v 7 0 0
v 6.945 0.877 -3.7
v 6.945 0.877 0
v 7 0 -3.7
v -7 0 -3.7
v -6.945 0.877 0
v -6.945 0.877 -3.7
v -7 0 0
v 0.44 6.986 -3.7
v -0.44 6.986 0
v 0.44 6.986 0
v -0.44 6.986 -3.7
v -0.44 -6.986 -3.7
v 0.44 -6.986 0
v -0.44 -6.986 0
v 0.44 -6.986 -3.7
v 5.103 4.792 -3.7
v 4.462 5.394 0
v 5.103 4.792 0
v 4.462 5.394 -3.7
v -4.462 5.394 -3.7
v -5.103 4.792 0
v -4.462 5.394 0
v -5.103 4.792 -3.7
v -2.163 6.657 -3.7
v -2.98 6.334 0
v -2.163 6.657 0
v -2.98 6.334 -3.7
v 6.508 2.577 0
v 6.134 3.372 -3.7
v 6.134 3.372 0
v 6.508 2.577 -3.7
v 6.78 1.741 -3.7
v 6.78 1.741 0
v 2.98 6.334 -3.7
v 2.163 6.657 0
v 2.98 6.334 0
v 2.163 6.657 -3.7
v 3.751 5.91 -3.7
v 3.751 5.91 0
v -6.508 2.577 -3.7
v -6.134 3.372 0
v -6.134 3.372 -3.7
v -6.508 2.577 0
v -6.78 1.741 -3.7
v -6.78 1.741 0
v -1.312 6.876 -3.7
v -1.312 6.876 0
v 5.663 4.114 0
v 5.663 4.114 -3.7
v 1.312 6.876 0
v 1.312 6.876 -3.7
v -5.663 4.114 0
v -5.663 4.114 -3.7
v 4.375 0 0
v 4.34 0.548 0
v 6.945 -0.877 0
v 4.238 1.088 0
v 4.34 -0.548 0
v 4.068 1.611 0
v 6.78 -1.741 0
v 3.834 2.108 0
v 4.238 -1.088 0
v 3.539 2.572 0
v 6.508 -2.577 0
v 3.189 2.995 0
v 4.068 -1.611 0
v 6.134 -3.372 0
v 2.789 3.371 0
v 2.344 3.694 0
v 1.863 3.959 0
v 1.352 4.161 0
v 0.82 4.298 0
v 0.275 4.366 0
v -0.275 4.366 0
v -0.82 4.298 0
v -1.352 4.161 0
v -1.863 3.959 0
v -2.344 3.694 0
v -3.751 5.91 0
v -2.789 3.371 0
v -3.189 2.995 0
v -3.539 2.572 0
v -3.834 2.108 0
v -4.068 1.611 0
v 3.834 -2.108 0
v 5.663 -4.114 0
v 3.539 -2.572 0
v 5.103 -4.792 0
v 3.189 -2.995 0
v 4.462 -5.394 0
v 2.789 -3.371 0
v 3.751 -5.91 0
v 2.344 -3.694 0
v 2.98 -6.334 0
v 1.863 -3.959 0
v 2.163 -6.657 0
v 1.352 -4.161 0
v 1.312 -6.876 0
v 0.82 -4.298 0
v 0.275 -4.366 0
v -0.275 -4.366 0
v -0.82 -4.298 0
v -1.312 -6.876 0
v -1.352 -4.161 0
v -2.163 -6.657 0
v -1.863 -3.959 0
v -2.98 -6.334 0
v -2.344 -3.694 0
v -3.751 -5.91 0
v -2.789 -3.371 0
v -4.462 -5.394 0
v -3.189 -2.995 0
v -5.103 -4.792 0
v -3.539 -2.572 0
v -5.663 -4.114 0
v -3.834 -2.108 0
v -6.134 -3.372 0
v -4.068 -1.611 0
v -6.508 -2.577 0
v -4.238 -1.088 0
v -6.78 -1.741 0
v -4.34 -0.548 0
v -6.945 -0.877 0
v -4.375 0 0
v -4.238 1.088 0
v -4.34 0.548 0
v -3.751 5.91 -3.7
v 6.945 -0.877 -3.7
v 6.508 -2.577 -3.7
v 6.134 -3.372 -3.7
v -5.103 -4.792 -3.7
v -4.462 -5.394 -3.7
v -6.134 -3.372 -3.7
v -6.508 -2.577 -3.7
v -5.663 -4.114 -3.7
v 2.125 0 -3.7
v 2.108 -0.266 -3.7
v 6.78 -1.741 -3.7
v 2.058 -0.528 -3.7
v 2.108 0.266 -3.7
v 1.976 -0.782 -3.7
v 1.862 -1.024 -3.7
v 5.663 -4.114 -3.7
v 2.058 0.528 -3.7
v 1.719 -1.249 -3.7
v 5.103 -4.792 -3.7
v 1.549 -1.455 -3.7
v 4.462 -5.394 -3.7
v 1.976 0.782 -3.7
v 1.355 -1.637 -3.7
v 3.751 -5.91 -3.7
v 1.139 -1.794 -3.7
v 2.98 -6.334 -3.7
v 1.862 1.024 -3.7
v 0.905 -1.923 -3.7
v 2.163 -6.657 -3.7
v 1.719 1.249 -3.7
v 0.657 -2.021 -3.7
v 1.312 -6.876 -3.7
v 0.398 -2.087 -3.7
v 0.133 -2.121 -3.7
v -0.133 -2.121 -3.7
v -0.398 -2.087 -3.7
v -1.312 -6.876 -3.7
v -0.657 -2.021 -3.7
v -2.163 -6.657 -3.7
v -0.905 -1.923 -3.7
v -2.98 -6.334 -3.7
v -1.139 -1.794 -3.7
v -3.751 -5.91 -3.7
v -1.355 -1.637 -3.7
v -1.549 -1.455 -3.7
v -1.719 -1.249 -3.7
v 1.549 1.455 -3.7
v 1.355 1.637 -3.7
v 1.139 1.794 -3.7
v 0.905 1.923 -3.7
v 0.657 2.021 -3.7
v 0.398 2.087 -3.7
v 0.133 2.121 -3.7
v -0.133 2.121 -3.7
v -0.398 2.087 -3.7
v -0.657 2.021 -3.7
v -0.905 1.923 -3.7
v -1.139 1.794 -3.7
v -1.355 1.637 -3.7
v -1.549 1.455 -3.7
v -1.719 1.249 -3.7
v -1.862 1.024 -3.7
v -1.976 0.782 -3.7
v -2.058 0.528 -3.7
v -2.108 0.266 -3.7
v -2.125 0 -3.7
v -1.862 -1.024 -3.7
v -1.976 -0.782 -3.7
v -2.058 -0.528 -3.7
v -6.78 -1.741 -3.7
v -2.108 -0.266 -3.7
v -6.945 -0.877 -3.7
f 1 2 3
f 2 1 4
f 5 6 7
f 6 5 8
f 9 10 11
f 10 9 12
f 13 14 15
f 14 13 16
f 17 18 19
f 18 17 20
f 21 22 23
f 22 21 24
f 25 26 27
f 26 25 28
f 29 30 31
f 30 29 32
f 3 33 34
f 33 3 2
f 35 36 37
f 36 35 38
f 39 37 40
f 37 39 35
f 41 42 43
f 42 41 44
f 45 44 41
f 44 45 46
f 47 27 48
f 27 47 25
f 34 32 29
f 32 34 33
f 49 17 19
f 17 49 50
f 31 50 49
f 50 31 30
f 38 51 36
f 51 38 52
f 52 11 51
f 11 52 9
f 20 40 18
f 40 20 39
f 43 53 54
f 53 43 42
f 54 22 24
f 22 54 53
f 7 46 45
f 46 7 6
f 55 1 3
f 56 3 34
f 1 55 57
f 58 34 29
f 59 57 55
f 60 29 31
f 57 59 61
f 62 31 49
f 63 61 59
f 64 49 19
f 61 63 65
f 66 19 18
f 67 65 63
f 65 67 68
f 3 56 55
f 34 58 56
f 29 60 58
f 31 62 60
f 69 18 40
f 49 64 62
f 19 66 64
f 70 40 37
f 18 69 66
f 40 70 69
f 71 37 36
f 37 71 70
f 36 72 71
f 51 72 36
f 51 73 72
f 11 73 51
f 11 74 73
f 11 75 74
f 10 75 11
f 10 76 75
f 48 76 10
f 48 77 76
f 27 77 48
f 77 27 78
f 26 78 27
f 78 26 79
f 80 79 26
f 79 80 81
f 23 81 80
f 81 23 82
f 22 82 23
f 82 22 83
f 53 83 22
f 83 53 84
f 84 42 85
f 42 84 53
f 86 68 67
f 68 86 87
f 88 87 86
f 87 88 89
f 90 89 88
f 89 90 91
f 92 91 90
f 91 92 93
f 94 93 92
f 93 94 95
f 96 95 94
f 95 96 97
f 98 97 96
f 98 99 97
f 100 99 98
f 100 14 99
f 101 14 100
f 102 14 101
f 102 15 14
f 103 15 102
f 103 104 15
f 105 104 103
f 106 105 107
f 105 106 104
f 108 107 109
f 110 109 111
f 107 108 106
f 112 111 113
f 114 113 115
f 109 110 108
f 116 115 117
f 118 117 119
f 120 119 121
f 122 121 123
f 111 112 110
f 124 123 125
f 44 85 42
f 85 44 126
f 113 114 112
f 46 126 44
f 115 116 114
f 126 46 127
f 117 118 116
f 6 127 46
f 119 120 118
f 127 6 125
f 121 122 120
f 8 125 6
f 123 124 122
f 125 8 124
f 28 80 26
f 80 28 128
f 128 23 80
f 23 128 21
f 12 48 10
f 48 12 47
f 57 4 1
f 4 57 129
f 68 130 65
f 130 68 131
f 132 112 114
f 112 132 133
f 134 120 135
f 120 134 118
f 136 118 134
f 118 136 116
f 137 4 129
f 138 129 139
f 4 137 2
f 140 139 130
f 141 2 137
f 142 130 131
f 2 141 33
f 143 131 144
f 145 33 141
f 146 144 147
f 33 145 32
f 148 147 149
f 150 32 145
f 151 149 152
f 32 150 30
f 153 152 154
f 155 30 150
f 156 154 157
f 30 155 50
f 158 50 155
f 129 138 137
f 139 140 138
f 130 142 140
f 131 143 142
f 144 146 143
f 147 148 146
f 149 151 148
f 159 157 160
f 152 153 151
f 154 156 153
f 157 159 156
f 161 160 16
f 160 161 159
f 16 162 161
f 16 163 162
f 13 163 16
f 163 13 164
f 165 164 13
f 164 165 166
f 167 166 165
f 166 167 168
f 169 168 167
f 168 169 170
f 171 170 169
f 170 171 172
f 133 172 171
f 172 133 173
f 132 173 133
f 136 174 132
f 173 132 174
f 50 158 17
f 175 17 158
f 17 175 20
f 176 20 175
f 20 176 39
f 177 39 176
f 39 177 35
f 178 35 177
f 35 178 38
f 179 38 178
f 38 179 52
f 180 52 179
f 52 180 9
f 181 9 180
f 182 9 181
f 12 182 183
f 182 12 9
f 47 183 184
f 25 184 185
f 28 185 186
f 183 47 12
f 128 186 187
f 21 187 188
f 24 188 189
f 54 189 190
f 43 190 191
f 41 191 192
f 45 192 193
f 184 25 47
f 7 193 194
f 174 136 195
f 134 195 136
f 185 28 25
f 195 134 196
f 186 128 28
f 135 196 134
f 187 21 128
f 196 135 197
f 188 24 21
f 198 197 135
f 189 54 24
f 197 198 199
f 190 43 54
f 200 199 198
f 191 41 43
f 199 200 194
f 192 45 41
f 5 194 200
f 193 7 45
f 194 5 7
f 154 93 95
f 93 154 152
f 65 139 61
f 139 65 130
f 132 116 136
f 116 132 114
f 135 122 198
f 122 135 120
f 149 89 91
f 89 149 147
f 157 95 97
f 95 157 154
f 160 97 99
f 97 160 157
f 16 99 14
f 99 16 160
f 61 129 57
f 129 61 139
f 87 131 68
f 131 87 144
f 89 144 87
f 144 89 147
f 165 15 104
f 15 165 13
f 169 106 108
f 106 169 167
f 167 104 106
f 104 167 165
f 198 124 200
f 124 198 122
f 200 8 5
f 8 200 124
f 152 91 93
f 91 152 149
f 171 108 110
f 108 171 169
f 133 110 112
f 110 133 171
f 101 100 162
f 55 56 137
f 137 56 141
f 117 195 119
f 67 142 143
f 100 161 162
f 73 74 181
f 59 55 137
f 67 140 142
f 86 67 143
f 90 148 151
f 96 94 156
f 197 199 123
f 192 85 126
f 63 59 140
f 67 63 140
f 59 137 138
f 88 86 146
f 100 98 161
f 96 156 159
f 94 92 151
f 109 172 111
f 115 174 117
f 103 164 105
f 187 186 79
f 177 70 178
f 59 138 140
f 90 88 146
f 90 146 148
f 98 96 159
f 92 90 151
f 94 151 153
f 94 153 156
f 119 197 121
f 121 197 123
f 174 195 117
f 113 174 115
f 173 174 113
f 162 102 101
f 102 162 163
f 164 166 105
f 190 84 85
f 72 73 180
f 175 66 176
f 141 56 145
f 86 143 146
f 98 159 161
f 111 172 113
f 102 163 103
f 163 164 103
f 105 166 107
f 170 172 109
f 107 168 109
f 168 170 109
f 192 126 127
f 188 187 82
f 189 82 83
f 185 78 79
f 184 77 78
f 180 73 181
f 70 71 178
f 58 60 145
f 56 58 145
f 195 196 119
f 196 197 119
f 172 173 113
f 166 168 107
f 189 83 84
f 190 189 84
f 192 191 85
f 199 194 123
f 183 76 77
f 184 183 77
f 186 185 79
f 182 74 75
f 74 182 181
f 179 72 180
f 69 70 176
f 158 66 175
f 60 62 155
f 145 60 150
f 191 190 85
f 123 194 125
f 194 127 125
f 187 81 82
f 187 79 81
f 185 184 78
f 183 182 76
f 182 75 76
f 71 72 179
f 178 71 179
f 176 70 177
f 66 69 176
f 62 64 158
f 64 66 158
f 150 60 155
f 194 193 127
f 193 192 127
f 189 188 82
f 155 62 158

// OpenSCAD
$fn = 50;


difference() {
	union() {
		translate(v = [0, 0, -3.7000000000]) {
			cylinder(h = 3.7000000000, r = 7.0000000000);
		}
		translate(v = [0, 0, -3.7000000000]) {
			cylinder(h = 3.7000000000, r = 2.8750000000);
		}
	}
	union() {
		translate(v = [0, 0, 0]) {
			rotate(a = [0, 0, 0]) {
				difference() {
					union() {
						translate(v = [0, 0, -3.7000000000]) {
							cylinder(h = 3.7000000000, r = 2.0000000000);
						}
						translate(v = [0, 0, -3.7000000000]) {
							cylinder(h = 3.7000000000, r1 = 2.1250000000, r2 = 4.3750000000);
						}
						translate(v = [0, 0, -3.7000000000]) {
							cylinder(h = 3.7000000000, r = 2.1250000000);
						}
						translate(v = [0, 0, -3.7000000000]) {
							cylinder(h = 3.7000000000, r = 2.0000000000);
						}
					}
					union();
				}
			}
		}
	}
}
